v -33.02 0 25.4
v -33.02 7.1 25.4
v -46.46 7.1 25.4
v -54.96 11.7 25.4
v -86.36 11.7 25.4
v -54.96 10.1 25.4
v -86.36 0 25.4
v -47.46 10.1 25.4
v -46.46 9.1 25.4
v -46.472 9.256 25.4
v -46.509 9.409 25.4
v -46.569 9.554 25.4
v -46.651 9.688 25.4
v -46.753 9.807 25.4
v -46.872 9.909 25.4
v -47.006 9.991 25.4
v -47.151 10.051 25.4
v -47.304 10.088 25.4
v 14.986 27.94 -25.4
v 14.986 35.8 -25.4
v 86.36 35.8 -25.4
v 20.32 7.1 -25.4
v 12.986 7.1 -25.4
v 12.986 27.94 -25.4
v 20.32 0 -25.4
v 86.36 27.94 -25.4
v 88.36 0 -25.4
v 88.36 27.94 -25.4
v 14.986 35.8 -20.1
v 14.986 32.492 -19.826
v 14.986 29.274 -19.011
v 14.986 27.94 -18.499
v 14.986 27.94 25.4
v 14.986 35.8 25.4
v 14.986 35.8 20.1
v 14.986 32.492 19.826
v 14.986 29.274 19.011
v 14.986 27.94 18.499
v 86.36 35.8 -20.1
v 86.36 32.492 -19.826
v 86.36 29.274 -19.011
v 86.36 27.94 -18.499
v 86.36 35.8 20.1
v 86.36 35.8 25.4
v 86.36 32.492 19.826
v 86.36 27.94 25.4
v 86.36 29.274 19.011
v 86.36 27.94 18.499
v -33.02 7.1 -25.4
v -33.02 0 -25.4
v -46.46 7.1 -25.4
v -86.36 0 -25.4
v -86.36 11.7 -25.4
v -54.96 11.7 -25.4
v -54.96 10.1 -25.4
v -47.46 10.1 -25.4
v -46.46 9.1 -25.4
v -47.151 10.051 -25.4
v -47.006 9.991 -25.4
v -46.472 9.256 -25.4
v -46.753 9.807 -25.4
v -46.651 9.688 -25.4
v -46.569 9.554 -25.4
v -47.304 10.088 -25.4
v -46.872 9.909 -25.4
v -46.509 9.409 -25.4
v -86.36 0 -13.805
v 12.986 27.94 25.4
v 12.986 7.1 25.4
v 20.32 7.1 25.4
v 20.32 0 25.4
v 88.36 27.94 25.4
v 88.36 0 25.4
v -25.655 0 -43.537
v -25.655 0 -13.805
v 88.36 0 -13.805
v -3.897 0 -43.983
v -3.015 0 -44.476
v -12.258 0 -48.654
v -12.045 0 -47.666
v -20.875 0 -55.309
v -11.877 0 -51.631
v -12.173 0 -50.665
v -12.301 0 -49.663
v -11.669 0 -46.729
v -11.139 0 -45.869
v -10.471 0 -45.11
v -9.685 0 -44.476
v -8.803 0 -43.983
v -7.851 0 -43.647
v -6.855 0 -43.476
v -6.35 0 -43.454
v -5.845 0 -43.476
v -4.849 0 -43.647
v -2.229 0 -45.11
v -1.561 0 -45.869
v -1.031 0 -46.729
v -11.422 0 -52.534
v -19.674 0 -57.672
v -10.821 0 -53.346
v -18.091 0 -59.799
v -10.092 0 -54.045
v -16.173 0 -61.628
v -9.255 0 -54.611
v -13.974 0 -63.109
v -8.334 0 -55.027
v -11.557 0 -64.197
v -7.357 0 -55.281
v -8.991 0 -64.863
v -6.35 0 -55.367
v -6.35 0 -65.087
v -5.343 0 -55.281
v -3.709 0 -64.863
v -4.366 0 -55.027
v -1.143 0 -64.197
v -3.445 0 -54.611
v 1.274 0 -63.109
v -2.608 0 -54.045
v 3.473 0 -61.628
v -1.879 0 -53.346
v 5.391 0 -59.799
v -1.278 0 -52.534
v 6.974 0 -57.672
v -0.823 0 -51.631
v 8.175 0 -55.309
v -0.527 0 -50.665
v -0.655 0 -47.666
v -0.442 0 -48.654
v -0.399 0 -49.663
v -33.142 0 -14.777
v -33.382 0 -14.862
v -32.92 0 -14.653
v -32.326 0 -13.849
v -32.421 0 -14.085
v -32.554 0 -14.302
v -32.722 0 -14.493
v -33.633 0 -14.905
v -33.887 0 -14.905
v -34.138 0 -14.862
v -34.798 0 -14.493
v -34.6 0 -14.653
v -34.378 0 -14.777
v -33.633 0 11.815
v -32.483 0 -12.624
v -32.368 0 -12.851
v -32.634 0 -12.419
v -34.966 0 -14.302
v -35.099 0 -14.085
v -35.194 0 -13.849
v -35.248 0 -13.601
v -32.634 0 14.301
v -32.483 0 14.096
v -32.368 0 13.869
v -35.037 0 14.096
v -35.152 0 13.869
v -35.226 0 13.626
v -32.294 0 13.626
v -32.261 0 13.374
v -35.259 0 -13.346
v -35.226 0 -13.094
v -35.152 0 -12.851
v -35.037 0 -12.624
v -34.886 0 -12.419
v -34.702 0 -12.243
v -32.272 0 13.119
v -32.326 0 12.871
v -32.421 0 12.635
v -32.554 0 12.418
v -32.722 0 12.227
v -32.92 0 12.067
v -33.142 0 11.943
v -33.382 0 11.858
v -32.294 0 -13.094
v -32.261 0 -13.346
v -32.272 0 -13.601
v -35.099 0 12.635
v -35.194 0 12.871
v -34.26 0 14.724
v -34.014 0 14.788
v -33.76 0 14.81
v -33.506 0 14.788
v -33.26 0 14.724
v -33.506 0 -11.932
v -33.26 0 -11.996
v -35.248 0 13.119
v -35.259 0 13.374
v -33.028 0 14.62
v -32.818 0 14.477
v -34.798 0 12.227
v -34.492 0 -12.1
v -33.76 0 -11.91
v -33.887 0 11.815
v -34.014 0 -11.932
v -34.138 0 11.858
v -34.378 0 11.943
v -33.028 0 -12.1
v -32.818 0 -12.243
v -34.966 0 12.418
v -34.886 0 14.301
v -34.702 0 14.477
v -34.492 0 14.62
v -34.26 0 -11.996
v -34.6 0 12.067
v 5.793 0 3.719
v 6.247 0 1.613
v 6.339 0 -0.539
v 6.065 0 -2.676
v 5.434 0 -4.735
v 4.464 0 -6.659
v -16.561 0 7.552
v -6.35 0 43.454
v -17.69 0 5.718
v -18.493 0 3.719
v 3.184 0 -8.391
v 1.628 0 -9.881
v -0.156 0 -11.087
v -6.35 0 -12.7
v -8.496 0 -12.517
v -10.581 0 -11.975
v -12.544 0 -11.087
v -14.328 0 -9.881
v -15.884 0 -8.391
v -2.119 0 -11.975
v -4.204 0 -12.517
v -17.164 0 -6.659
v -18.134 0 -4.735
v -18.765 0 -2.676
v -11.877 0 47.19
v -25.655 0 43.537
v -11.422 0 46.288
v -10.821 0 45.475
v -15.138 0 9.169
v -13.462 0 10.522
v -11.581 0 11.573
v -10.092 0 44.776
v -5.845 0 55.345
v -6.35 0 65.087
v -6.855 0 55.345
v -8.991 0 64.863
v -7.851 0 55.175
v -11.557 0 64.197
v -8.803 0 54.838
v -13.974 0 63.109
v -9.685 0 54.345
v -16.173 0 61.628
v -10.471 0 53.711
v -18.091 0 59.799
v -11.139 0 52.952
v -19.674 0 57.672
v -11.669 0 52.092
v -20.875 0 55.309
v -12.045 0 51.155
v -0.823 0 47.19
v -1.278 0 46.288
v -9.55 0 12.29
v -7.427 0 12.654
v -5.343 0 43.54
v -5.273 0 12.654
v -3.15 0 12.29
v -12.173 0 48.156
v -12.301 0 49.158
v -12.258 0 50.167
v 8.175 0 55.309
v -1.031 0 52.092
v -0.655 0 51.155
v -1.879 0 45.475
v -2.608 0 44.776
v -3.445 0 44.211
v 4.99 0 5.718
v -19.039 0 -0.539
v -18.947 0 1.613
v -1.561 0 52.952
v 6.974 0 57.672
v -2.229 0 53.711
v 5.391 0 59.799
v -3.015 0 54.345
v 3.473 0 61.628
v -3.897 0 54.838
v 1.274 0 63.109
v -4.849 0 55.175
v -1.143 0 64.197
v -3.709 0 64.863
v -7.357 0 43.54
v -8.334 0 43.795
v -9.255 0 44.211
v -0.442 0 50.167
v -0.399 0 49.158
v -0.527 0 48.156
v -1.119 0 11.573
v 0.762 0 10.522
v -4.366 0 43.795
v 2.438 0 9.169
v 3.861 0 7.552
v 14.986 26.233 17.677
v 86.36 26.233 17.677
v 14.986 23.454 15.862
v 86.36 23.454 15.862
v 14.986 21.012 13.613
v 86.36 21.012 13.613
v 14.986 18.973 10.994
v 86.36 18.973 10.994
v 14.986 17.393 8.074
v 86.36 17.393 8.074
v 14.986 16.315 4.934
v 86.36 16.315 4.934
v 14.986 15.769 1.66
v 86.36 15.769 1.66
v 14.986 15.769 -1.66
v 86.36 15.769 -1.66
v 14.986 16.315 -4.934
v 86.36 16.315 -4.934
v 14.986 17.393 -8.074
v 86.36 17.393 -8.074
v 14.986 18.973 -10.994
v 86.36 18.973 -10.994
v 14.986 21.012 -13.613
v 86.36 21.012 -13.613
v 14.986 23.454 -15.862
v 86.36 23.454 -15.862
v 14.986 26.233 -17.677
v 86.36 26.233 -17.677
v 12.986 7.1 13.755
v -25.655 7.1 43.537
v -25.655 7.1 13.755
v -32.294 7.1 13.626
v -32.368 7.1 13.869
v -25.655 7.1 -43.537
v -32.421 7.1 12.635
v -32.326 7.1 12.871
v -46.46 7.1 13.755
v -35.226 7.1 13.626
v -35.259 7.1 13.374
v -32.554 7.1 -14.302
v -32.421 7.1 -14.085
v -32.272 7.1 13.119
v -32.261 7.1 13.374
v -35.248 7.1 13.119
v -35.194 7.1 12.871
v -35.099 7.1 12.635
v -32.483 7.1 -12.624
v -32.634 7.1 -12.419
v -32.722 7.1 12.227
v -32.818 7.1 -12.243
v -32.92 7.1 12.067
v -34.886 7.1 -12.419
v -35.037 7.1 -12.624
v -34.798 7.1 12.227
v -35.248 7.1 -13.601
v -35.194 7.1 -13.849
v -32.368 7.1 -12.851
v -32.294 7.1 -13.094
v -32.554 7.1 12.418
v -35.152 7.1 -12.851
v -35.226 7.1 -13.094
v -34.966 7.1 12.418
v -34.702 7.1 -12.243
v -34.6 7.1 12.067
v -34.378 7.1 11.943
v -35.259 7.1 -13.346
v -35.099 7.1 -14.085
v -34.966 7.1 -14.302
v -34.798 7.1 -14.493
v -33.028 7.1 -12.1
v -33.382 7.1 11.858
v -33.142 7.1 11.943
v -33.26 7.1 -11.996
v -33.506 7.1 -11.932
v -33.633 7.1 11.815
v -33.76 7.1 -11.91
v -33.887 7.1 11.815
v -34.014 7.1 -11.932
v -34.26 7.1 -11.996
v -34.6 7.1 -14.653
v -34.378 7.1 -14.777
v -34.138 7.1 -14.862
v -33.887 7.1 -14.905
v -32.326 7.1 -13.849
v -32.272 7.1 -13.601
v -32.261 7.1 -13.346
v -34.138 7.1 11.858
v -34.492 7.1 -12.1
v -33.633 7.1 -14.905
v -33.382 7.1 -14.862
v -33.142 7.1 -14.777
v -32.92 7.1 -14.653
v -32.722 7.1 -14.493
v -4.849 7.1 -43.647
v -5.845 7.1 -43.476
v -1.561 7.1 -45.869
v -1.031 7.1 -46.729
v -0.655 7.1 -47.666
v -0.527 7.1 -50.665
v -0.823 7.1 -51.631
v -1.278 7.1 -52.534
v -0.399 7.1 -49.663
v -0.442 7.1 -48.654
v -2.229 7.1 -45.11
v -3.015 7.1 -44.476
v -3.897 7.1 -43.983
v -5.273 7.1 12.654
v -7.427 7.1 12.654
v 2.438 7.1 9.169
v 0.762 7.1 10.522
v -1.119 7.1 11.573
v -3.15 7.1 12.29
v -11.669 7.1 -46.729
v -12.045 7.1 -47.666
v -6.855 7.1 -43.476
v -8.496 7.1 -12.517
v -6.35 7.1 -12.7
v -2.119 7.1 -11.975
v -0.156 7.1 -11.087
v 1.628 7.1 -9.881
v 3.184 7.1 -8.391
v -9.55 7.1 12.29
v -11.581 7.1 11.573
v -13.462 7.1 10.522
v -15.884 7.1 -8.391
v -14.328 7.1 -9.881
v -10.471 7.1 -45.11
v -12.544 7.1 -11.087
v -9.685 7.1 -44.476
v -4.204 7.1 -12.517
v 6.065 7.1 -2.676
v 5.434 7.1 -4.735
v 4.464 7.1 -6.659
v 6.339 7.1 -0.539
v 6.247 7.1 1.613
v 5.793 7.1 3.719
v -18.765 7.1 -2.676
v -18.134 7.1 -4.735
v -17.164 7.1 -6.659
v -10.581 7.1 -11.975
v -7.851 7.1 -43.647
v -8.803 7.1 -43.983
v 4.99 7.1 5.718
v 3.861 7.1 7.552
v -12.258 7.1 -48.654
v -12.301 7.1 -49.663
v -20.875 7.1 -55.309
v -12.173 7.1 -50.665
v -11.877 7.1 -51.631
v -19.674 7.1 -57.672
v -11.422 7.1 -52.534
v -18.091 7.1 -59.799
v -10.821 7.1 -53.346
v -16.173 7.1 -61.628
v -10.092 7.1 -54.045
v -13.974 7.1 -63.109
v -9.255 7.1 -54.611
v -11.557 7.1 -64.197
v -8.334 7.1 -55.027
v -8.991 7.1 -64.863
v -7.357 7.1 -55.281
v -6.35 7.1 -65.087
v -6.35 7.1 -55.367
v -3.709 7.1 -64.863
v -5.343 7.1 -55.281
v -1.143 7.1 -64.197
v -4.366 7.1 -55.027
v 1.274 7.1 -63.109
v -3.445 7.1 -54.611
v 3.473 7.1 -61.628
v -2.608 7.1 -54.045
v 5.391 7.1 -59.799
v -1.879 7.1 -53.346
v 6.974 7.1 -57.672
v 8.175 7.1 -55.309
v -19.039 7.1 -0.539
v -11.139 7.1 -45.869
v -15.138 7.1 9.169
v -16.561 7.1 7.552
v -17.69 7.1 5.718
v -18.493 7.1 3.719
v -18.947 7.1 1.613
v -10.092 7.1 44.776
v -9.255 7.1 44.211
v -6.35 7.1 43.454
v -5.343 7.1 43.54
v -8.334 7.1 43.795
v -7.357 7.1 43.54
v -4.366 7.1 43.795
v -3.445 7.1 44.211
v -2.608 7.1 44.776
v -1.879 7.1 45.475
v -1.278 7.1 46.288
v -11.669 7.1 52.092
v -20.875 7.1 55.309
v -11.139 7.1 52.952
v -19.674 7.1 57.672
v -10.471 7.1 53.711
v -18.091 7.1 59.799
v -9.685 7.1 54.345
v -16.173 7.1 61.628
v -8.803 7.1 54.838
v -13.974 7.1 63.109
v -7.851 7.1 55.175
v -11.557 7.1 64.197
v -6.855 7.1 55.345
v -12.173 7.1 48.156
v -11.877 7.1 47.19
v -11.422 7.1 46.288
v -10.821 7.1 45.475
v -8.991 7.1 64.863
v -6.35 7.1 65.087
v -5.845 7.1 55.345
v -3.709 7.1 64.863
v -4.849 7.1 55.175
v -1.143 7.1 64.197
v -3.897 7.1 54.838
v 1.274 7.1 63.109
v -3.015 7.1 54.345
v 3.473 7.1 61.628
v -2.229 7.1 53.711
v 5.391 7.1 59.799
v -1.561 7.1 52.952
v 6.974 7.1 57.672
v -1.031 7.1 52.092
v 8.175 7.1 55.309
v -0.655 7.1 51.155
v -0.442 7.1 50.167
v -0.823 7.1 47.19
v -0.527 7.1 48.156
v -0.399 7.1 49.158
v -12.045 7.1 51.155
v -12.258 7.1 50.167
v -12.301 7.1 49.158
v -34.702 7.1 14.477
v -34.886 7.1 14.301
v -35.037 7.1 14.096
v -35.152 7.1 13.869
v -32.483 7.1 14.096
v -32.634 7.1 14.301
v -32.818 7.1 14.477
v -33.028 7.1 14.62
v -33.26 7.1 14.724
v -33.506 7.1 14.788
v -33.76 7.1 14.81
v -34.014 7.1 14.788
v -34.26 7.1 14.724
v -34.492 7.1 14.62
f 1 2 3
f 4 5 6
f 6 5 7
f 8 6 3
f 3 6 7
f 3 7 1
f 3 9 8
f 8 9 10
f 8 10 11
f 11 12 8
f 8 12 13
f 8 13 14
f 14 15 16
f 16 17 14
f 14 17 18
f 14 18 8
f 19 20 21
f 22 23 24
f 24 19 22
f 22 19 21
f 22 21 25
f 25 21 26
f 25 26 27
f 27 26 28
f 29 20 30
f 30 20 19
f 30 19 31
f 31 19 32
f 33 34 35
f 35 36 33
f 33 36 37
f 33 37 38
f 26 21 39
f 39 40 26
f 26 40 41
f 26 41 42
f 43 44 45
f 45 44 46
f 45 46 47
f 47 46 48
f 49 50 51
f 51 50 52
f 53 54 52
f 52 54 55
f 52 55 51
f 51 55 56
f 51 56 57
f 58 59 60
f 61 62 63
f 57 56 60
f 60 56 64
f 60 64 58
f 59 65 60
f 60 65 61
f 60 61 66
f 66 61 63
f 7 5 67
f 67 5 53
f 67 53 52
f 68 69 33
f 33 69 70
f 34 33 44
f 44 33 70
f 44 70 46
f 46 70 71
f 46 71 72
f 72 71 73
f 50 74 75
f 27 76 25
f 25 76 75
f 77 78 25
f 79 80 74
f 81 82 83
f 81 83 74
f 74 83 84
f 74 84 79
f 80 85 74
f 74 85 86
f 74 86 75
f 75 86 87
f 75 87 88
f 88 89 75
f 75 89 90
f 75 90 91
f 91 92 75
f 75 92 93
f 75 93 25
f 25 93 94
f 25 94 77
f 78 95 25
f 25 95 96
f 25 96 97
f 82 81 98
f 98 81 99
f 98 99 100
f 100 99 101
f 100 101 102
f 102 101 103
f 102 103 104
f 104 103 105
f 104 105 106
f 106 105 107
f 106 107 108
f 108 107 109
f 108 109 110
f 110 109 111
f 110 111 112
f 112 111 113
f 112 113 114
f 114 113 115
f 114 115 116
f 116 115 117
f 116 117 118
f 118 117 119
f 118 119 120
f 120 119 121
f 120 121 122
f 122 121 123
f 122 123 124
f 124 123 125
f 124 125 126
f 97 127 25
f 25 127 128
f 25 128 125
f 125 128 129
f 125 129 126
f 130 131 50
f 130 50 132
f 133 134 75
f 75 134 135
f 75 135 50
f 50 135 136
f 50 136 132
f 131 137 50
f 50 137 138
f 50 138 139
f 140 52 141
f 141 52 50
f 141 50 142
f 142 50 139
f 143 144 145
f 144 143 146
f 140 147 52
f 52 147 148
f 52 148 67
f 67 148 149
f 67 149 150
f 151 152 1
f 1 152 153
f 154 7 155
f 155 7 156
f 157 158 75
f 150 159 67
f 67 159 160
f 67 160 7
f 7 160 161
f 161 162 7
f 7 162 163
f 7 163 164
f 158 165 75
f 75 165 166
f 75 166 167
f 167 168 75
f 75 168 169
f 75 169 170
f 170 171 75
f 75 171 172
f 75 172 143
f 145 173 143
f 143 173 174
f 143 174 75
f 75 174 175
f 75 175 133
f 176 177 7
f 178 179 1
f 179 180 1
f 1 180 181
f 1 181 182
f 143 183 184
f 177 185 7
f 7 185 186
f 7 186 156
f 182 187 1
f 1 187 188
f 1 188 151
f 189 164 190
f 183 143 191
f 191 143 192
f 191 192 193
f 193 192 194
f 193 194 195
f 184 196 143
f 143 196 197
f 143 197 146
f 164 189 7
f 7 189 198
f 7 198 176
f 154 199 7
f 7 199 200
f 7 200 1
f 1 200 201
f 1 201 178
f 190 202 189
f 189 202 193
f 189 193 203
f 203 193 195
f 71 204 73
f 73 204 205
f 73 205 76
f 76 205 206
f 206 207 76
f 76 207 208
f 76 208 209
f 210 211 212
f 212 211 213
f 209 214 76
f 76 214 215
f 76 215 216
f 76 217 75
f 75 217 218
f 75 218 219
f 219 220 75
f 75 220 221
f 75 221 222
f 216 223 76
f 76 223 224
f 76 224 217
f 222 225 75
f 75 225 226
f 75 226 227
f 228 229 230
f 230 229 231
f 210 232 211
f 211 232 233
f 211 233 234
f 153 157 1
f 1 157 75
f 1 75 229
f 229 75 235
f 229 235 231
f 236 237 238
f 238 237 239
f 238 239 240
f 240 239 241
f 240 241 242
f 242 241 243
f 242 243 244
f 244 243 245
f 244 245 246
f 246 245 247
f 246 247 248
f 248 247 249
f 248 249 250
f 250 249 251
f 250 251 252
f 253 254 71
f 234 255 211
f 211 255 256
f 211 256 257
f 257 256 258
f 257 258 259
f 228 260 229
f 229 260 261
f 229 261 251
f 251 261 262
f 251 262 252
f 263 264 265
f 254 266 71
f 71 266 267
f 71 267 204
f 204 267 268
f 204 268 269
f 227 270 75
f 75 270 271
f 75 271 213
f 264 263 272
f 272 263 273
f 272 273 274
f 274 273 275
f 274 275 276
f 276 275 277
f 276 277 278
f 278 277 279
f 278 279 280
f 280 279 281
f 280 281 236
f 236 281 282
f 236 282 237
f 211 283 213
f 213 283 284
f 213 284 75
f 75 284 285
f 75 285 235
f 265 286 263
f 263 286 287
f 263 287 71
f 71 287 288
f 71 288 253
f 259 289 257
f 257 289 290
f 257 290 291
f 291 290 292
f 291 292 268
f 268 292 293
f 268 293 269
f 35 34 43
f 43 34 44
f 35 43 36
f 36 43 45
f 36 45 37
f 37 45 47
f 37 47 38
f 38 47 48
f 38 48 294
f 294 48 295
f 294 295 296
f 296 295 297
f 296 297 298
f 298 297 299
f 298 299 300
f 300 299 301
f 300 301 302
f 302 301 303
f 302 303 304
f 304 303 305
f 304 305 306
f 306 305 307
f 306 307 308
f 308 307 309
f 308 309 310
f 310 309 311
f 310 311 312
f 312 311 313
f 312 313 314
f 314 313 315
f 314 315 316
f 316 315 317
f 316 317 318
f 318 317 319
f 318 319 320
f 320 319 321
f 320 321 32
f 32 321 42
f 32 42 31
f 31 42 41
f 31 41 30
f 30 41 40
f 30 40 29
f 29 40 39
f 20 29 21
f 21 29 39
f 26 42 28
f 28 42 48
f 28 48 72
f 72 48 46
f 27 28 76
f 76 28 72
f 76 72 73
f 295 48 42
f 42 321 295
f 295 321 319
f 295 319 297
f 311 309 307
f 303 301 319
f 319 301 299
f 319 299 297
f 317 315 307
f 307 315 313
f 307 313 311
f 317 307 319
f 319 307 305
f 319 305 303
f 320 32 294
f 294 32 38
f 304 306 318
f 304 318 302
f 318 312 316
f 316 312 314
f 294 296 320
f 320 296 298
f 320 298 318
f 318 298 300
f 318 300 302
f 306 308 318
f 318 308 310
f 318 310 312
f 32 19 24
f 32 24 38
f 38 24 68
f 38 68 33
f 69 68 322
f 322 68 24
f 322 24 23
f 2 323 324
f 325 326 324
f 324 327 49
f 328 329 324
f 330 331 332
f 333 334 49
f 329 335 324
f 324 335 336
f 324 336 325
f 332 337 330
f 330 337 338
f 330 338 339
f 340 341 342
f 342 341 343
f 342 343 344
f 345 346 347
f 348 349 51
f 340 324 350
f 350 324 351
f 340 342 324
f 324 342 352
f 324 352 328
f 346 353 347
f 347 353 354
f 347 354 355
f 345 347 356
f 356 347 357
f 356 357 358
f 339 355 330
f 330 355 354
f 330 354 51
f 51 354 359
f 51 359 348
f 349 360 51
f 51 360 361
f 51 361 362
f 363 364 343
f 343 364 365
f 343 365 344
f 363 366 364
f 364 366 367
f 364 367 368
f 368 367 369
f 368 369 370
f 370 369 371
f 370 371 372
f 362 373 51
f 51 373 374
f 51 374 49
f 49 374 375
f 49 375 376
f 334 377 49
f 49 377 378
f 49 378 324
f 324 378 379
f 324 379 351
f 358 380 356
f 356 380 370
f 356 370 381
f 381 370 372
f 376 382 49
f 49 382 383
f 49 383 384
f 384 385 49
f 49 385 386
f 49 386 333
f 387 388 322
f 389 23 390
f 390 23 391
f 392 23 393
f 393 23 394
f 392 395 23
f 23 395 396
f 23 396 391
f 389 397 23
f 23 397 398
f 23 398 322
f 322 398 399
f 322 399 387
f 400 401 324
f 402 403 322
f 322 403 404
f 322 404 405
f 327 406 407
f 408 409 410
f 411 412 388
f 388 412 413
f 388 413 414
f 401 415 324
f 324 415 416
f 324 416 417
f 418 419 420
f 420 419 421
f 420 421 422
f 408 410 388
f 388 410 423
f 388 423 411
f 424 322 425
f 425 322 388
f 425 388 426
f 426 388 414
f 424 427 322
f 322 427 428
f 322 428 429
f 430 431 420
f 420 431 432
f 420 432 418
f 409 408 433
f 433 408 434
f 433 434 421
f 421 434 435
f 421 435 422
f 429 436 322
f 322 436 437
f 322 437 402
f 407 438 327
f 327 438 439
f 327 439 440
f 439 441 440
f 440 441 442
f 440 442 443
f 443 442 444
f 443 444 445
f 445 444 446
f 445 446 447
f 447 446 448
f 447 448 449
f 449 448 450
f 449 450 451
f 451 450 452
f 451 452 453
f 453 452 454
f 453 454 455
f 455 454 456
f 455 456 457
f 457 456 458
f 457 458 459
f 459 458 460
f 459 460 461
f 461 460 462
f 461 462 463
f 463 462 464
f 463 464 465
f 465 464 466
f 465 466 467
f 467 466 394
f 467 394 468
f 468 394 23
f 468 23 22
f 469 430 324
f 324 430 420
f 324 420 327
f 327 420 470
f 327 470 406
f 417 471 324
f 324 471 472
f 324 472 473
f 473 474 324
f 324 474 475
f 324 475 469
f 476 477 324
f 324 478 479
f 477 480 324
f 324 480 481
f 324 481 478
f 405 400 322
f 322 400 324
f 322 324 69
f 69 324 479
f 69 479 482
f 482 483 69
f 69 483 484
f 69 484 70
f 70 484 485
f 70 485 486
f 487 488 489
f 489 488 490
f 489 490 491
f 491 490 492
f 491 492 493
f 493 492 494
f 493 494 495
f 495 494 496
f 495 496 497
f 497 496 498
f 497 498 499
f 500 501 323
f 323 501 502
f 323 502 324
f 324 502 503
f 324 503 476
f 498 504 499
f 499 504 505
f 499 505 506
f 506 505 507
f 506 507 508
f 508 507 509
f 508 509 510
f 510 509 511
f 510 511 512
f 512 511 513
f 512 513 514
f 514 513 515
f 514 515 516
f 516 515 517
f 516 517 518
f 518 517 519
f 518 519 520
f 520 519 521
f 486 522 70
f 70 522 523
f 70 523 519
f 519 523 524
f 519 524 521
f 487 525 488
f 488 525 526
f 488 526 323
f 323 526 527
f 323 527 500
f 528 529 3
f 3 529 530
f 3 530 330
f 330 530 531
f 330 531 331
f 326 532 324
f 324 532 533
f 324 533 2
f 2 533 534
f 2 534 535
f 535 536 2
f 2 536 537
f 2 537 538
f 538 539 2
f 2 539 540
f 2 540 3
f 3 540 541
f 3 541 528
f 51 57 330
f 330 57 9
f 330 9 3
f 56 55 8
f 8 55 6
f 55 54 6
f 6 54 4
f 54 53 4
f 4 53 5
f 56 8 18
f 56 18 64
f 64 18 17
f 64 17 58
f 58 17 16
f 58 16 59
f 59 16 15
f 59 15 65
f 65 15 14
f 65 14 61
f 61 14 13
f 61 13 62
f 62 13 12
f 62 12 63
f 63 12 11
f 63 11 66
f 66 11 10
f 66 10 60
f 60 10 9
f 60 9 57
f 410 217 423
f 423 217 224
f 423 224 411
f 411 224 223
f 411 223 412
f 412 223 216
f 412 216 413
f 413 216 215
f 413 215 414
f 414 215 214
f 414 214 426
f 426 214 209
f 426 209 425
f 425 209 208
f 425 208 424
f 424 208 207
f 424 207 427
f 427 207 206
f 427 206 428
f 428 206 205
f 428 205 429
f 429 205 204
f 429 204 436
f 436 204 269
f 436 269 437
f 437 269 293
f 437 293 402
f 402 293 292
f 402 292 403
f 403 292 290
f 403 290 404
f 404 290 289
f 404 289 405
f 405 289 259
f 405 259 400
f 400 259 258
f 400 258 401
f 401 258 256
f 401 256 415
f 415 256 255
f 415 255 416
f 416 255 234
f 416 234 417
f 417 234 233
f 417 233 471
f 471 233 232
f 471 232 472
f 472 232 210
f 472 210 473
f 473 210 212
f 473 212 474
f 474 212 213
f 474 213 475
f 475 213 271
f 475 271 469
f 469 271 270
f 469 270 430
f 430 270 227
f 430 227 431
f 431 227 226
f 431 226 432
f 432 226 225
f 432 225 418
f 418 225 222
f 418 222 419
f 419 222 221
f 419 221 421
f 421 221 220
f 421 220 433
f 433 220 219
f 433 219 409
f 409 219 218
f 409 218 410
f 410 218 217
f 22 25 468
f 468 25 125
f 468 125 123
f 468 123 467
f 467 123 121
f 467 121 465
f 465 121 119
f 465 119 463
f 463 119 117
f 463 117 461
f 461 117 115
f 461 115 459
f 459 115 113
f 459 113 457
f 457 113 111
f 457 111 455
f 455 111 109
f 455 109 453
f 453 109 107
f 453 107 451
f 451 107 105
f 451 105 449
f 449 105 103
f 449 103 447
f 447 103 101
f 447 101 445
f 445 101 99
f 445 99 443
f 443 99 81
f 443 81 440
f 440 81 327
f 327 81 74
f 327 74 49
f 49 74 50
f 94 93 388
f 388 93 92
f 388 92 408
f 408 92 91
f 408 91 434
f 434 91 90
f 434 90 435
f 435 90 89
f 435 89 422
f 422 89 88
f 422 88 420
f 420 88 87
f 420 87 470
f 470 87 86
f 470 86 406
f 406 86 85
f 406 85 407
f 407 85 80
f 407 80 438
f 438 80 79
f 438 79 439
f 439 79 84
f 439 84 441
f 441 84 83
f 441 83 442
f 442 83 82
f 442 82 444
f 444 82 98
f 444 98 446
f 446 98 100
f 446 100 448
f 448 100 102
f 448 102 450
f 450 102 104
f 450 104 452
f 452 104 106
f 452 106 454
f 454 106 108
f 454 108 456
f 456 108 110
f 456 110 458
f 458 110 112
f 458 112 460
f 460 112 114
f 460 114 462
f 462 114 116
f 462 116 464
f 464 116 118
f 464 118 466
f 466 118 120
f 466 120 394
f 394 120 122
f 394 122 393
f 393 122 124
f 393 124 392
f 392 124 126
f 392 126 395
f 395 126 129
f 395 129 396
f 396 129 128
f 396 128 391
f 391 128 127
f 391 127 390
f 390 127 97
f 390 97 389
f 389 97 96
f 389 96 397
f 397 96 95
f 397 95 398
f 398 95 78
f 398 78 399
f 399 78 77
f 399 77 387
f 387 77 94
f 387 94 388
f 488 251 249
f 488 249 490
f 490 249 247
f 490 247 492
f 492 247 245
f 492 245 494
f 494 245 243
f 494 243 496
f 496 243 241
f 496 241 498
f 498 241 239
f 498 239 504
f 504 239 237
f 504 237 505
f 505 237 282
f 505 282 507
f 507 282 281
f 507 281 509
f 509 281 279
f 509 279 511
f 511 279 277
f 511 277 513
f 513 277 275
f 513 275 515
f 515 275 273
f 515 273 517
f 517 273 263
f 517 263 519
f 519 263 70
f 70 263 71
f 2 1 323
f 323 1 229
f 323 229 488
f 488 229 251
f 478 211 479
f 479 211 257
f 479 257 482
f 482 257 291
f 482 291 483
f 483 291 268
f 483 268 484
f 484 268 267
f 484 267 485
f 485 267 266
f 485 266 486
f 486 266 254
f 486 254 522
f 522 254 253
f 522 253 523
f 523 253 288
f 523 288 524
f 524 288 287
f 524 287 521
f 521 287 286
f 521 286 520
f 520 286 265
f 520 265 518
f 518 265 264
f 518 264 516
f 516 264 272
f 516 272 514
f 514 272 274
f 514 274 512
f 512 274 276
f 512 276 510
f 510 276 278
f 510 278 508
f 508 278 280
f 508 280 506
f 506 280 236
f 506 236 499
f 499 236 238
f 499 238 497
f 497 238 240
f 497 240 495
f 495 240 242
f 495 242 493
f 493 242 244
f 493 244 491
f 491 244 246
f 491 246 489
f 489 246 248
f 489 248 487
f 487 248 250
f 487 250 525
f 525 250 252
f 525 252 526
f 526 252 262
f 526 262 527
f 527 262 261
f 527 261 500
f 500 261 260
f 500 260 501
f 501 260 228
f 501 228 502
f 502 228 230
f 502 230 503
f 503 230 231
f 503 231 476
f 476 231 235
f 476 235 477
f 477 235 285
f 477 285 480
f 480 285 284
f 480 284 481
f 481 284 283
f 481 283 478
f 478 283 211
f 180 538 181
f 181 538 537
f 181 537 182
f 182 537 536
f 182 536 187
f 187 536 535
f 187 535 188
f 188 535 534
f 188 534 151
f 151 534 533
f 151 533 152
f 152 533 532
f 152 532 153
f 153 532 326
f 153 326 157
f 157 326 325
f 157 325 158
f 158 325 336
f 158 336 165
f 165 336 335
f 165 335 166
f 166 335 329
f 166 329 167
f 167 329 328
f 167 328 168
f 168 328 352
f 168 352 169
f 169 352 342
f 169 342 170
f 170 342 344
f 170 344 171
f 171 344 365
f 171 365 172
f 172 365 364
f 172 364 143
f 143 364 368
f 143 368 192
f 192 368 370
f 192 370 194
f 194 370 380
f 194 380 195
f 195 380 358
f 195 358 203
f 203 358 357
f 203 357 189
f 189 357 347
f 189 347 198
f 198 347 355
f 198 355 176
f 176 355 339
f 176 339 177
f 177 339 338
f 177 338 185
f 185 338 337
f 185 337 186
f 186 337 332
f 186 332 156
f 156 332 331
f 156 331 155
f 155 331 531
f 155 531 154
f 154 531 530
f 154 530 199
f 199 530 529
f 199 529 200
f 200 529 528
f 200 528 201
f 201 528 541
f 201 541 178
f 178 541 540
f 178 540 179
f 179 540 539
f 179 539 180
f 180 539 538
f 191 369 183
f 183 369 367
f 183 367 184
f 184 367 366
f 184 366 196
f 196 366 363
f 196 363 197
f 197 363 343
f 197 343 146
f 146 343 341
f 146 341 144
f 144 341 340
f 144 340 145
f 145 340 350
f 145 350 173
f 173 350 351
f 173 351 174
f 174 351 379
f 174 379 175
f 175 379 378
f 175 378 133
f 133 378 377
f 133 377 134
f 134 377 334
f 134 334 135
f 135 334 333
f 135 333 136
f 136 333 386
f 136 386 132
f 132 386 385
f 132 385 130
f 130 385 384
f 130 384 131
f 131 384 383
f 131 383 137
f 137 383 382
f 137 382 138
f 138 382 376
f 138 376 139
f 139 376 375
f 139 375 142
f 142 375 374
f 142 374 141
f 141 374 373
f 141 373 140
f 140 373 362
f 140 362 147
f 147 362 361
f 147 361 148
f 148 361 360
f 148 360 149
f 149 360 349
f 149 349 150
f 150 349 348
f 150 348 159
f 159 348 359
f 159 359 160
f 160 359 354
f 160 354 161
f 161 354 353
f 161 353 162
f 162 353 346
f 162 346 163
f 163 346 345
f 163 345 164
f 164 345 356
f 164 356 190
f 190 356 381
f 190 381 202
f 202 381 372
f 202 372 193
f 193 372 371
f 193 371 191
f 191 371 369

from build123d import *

# Parameters (mm, degrees)
SKETCH1_W           = 172.72
SKETCH1_H           = 50.8
BOSS_EXTRUDE1_DEPTH = 12.7
BOSS_EXTRUDE2_DEPTH = 71.374
SKETCH5_W           = 50.8
SKETCH5_H           = 27.94
BOSS_EXTRUDE3_DEPTH = 2
SKETCH6_W           = 50.8
SKETCH6_H           = 15.24
BOSS_EXTRUDE4_DEPTH = 2
CUT_EXTRUDE1_DEPTH  = 51.8
FILLET1_R           = 1
SKETCH8_R           = 12.7
CUT_EXTRUDE2_DEPTH  = 7.1
SKETCH9_R           = 5.9563
BOSS_EXTRUDE5_DEPTH = 7.1
SKETCH10_R          = 1.5
CUT_EXTRUDE3_DEPTH  = 7.1


with BuildPart() as part:
    # Sketch1 → Boss-Extrude1 (new body)
    with BuildSketch(Plane(origin=(0, 0, 0), x_dir=(1, 0, 0), z_dir=(0, 1, 0))):
        Rectangle(SKETCH1_W, SKETCH1_H)
    extrude(amount=BOSS_EXTRUDE1_DEPTH)

    # Sketch4 → Boss-Extrude2 (add)
    with BuildSketch(Plane(origin=(86.36, 0, 0), x_dir=(0, 0, -1), z_dir=(1, 0, 0))):
        with BuildLine():
            Line((-25.4, 12.7), (-25.4, 35.8))
            Line((-25.4, 35.8), (-20.1, 35.8))
            ThreePointArc((-20.1, 35.8), (0, 15.7), (20.1, 35.8))
            Line((20.1, 35.8), (25.4, 35.8))
            Line((25.4, 35.8), (25.4, 12.7))
            Line((25.4, 12.7), (-25.4, 12.7))
        make_face()
    extrude(amount=-BOSS_EXTRUDE2_DEPTH)

    # Sketch5 → Boss-Extrude3 (add)
    with BuildSketch(Plane(origin=(86.36, 0, 0), x_dir=(0, 0, -1), z_dir=(1, 0, 0))):
        with Locations((0, 13.97)):
            Rectangle(SKETCH5_W, SKETCH5_H)
    extrude(amount=BOSS_EXTRUDE3_DEPTH)

    # Sketch6 → Boss-Extrude4 (add)
    with BuildSketch(Plane.ZY.offset(-14.986)):
        with Locations((0, 20.32)):
            Rectangle(SKETCH6_W, SKETCH6_H)
    extrude(amount=BOSS_EXTRUDE4_DEPTH)

    # Sketch7 → Cut-Extrude1 (cut, through all)
    with BuildSketch(Plane.XY.offset(25.4)):
        Polygon((-86.36, 12.7), (-86.36, 11.7), (-54.96, 11.7), (-54.96, 10.1), (-46.45999982, 10.1), (-46.45999982, 7.1), (12.986, 7.1), (12.986, 12.7), align=None)
    extrude(amount=-CUT_EXTRUDE1_DEPTH, mode=Mode.SUBTRACT)

    # Fillet1
    fillet1_edges = [part.edges().sort_by_distance(p)[0] for p in [
        (-46.45999982, 10.1, 0),
    ]]
    fillet(fillet1_edges, radius=FILLET1_R)

    # Sketch8 → Cut-Extrude2 (cut)
    with BuildSketch(Plane.XZ):
        with Locations((-6.35, 0)):
            Circle(SKETCH8_R)
    extrude(amount=-CUT_EXTRUDE2_DEPTH, mode=Mode.SUBTRACT)

    # Sketch9 → Boss-Extrude5 (add)
    with BuildSketch(Plane(origin=(0, 0, 0), x_dir=(1, 0, 0), z_dir=(0, 1, 0))):
        with BuildLine():
            Line((-33.02, 25.4), (-20.875030517, 55.308759963))
            ThreePointArc((-20.875030517, 55.308759963), (-6.35, 65.0875), (8.175030517, 55.308759963))
            Line((8.175030517, 55.308759963), (20.32, 25.4))
            Line((20.32, 25.4), (-33.02, 25.4))
        make_face()
        with Locations((-6.35, 49.41062)):
            Circle(SKETCH9_R, mode=Mode.SUBTRACT)
        with BuildLine():
            Line((20.32, -25.4), (-33.02, -25.4))
            Line((-33.02, -25.4), (-20.875030517, -55.308759963))
            ThreePointArc((-20.875030517, -55.308759963), (-6.35, -65.0875), (8.175030517, -55.308759963))
            Line((8.175030517, -55.308759963), (20.32, -25.4))
        make_face()
        with Locations((-6.35, -49.41062)):
            Circle(SKETCH9_R, mode=Mode.SUBTRACT)
    extrude(amount=BOSS_EXTRUDE5_DEPTH)

    # Sketch10 → Cut-Extrude3 (cut)
    with BuildSketch(Plane(origin=(0, 7.1, 0), x_dir=(1, 0, 0), z_dir=(0, 1, 0))):
        with Locations((-33.75999982, 13.41)):
            Circle(SKETCH10_R)
        with Locations((-33.75999982, -13.31)):
            Circle(SKETCH10_R)
    extrude(amount=-CUT_EXTRUDE3_DEPTH, mode=Mode.SUBTRACT)


solid = part.part
